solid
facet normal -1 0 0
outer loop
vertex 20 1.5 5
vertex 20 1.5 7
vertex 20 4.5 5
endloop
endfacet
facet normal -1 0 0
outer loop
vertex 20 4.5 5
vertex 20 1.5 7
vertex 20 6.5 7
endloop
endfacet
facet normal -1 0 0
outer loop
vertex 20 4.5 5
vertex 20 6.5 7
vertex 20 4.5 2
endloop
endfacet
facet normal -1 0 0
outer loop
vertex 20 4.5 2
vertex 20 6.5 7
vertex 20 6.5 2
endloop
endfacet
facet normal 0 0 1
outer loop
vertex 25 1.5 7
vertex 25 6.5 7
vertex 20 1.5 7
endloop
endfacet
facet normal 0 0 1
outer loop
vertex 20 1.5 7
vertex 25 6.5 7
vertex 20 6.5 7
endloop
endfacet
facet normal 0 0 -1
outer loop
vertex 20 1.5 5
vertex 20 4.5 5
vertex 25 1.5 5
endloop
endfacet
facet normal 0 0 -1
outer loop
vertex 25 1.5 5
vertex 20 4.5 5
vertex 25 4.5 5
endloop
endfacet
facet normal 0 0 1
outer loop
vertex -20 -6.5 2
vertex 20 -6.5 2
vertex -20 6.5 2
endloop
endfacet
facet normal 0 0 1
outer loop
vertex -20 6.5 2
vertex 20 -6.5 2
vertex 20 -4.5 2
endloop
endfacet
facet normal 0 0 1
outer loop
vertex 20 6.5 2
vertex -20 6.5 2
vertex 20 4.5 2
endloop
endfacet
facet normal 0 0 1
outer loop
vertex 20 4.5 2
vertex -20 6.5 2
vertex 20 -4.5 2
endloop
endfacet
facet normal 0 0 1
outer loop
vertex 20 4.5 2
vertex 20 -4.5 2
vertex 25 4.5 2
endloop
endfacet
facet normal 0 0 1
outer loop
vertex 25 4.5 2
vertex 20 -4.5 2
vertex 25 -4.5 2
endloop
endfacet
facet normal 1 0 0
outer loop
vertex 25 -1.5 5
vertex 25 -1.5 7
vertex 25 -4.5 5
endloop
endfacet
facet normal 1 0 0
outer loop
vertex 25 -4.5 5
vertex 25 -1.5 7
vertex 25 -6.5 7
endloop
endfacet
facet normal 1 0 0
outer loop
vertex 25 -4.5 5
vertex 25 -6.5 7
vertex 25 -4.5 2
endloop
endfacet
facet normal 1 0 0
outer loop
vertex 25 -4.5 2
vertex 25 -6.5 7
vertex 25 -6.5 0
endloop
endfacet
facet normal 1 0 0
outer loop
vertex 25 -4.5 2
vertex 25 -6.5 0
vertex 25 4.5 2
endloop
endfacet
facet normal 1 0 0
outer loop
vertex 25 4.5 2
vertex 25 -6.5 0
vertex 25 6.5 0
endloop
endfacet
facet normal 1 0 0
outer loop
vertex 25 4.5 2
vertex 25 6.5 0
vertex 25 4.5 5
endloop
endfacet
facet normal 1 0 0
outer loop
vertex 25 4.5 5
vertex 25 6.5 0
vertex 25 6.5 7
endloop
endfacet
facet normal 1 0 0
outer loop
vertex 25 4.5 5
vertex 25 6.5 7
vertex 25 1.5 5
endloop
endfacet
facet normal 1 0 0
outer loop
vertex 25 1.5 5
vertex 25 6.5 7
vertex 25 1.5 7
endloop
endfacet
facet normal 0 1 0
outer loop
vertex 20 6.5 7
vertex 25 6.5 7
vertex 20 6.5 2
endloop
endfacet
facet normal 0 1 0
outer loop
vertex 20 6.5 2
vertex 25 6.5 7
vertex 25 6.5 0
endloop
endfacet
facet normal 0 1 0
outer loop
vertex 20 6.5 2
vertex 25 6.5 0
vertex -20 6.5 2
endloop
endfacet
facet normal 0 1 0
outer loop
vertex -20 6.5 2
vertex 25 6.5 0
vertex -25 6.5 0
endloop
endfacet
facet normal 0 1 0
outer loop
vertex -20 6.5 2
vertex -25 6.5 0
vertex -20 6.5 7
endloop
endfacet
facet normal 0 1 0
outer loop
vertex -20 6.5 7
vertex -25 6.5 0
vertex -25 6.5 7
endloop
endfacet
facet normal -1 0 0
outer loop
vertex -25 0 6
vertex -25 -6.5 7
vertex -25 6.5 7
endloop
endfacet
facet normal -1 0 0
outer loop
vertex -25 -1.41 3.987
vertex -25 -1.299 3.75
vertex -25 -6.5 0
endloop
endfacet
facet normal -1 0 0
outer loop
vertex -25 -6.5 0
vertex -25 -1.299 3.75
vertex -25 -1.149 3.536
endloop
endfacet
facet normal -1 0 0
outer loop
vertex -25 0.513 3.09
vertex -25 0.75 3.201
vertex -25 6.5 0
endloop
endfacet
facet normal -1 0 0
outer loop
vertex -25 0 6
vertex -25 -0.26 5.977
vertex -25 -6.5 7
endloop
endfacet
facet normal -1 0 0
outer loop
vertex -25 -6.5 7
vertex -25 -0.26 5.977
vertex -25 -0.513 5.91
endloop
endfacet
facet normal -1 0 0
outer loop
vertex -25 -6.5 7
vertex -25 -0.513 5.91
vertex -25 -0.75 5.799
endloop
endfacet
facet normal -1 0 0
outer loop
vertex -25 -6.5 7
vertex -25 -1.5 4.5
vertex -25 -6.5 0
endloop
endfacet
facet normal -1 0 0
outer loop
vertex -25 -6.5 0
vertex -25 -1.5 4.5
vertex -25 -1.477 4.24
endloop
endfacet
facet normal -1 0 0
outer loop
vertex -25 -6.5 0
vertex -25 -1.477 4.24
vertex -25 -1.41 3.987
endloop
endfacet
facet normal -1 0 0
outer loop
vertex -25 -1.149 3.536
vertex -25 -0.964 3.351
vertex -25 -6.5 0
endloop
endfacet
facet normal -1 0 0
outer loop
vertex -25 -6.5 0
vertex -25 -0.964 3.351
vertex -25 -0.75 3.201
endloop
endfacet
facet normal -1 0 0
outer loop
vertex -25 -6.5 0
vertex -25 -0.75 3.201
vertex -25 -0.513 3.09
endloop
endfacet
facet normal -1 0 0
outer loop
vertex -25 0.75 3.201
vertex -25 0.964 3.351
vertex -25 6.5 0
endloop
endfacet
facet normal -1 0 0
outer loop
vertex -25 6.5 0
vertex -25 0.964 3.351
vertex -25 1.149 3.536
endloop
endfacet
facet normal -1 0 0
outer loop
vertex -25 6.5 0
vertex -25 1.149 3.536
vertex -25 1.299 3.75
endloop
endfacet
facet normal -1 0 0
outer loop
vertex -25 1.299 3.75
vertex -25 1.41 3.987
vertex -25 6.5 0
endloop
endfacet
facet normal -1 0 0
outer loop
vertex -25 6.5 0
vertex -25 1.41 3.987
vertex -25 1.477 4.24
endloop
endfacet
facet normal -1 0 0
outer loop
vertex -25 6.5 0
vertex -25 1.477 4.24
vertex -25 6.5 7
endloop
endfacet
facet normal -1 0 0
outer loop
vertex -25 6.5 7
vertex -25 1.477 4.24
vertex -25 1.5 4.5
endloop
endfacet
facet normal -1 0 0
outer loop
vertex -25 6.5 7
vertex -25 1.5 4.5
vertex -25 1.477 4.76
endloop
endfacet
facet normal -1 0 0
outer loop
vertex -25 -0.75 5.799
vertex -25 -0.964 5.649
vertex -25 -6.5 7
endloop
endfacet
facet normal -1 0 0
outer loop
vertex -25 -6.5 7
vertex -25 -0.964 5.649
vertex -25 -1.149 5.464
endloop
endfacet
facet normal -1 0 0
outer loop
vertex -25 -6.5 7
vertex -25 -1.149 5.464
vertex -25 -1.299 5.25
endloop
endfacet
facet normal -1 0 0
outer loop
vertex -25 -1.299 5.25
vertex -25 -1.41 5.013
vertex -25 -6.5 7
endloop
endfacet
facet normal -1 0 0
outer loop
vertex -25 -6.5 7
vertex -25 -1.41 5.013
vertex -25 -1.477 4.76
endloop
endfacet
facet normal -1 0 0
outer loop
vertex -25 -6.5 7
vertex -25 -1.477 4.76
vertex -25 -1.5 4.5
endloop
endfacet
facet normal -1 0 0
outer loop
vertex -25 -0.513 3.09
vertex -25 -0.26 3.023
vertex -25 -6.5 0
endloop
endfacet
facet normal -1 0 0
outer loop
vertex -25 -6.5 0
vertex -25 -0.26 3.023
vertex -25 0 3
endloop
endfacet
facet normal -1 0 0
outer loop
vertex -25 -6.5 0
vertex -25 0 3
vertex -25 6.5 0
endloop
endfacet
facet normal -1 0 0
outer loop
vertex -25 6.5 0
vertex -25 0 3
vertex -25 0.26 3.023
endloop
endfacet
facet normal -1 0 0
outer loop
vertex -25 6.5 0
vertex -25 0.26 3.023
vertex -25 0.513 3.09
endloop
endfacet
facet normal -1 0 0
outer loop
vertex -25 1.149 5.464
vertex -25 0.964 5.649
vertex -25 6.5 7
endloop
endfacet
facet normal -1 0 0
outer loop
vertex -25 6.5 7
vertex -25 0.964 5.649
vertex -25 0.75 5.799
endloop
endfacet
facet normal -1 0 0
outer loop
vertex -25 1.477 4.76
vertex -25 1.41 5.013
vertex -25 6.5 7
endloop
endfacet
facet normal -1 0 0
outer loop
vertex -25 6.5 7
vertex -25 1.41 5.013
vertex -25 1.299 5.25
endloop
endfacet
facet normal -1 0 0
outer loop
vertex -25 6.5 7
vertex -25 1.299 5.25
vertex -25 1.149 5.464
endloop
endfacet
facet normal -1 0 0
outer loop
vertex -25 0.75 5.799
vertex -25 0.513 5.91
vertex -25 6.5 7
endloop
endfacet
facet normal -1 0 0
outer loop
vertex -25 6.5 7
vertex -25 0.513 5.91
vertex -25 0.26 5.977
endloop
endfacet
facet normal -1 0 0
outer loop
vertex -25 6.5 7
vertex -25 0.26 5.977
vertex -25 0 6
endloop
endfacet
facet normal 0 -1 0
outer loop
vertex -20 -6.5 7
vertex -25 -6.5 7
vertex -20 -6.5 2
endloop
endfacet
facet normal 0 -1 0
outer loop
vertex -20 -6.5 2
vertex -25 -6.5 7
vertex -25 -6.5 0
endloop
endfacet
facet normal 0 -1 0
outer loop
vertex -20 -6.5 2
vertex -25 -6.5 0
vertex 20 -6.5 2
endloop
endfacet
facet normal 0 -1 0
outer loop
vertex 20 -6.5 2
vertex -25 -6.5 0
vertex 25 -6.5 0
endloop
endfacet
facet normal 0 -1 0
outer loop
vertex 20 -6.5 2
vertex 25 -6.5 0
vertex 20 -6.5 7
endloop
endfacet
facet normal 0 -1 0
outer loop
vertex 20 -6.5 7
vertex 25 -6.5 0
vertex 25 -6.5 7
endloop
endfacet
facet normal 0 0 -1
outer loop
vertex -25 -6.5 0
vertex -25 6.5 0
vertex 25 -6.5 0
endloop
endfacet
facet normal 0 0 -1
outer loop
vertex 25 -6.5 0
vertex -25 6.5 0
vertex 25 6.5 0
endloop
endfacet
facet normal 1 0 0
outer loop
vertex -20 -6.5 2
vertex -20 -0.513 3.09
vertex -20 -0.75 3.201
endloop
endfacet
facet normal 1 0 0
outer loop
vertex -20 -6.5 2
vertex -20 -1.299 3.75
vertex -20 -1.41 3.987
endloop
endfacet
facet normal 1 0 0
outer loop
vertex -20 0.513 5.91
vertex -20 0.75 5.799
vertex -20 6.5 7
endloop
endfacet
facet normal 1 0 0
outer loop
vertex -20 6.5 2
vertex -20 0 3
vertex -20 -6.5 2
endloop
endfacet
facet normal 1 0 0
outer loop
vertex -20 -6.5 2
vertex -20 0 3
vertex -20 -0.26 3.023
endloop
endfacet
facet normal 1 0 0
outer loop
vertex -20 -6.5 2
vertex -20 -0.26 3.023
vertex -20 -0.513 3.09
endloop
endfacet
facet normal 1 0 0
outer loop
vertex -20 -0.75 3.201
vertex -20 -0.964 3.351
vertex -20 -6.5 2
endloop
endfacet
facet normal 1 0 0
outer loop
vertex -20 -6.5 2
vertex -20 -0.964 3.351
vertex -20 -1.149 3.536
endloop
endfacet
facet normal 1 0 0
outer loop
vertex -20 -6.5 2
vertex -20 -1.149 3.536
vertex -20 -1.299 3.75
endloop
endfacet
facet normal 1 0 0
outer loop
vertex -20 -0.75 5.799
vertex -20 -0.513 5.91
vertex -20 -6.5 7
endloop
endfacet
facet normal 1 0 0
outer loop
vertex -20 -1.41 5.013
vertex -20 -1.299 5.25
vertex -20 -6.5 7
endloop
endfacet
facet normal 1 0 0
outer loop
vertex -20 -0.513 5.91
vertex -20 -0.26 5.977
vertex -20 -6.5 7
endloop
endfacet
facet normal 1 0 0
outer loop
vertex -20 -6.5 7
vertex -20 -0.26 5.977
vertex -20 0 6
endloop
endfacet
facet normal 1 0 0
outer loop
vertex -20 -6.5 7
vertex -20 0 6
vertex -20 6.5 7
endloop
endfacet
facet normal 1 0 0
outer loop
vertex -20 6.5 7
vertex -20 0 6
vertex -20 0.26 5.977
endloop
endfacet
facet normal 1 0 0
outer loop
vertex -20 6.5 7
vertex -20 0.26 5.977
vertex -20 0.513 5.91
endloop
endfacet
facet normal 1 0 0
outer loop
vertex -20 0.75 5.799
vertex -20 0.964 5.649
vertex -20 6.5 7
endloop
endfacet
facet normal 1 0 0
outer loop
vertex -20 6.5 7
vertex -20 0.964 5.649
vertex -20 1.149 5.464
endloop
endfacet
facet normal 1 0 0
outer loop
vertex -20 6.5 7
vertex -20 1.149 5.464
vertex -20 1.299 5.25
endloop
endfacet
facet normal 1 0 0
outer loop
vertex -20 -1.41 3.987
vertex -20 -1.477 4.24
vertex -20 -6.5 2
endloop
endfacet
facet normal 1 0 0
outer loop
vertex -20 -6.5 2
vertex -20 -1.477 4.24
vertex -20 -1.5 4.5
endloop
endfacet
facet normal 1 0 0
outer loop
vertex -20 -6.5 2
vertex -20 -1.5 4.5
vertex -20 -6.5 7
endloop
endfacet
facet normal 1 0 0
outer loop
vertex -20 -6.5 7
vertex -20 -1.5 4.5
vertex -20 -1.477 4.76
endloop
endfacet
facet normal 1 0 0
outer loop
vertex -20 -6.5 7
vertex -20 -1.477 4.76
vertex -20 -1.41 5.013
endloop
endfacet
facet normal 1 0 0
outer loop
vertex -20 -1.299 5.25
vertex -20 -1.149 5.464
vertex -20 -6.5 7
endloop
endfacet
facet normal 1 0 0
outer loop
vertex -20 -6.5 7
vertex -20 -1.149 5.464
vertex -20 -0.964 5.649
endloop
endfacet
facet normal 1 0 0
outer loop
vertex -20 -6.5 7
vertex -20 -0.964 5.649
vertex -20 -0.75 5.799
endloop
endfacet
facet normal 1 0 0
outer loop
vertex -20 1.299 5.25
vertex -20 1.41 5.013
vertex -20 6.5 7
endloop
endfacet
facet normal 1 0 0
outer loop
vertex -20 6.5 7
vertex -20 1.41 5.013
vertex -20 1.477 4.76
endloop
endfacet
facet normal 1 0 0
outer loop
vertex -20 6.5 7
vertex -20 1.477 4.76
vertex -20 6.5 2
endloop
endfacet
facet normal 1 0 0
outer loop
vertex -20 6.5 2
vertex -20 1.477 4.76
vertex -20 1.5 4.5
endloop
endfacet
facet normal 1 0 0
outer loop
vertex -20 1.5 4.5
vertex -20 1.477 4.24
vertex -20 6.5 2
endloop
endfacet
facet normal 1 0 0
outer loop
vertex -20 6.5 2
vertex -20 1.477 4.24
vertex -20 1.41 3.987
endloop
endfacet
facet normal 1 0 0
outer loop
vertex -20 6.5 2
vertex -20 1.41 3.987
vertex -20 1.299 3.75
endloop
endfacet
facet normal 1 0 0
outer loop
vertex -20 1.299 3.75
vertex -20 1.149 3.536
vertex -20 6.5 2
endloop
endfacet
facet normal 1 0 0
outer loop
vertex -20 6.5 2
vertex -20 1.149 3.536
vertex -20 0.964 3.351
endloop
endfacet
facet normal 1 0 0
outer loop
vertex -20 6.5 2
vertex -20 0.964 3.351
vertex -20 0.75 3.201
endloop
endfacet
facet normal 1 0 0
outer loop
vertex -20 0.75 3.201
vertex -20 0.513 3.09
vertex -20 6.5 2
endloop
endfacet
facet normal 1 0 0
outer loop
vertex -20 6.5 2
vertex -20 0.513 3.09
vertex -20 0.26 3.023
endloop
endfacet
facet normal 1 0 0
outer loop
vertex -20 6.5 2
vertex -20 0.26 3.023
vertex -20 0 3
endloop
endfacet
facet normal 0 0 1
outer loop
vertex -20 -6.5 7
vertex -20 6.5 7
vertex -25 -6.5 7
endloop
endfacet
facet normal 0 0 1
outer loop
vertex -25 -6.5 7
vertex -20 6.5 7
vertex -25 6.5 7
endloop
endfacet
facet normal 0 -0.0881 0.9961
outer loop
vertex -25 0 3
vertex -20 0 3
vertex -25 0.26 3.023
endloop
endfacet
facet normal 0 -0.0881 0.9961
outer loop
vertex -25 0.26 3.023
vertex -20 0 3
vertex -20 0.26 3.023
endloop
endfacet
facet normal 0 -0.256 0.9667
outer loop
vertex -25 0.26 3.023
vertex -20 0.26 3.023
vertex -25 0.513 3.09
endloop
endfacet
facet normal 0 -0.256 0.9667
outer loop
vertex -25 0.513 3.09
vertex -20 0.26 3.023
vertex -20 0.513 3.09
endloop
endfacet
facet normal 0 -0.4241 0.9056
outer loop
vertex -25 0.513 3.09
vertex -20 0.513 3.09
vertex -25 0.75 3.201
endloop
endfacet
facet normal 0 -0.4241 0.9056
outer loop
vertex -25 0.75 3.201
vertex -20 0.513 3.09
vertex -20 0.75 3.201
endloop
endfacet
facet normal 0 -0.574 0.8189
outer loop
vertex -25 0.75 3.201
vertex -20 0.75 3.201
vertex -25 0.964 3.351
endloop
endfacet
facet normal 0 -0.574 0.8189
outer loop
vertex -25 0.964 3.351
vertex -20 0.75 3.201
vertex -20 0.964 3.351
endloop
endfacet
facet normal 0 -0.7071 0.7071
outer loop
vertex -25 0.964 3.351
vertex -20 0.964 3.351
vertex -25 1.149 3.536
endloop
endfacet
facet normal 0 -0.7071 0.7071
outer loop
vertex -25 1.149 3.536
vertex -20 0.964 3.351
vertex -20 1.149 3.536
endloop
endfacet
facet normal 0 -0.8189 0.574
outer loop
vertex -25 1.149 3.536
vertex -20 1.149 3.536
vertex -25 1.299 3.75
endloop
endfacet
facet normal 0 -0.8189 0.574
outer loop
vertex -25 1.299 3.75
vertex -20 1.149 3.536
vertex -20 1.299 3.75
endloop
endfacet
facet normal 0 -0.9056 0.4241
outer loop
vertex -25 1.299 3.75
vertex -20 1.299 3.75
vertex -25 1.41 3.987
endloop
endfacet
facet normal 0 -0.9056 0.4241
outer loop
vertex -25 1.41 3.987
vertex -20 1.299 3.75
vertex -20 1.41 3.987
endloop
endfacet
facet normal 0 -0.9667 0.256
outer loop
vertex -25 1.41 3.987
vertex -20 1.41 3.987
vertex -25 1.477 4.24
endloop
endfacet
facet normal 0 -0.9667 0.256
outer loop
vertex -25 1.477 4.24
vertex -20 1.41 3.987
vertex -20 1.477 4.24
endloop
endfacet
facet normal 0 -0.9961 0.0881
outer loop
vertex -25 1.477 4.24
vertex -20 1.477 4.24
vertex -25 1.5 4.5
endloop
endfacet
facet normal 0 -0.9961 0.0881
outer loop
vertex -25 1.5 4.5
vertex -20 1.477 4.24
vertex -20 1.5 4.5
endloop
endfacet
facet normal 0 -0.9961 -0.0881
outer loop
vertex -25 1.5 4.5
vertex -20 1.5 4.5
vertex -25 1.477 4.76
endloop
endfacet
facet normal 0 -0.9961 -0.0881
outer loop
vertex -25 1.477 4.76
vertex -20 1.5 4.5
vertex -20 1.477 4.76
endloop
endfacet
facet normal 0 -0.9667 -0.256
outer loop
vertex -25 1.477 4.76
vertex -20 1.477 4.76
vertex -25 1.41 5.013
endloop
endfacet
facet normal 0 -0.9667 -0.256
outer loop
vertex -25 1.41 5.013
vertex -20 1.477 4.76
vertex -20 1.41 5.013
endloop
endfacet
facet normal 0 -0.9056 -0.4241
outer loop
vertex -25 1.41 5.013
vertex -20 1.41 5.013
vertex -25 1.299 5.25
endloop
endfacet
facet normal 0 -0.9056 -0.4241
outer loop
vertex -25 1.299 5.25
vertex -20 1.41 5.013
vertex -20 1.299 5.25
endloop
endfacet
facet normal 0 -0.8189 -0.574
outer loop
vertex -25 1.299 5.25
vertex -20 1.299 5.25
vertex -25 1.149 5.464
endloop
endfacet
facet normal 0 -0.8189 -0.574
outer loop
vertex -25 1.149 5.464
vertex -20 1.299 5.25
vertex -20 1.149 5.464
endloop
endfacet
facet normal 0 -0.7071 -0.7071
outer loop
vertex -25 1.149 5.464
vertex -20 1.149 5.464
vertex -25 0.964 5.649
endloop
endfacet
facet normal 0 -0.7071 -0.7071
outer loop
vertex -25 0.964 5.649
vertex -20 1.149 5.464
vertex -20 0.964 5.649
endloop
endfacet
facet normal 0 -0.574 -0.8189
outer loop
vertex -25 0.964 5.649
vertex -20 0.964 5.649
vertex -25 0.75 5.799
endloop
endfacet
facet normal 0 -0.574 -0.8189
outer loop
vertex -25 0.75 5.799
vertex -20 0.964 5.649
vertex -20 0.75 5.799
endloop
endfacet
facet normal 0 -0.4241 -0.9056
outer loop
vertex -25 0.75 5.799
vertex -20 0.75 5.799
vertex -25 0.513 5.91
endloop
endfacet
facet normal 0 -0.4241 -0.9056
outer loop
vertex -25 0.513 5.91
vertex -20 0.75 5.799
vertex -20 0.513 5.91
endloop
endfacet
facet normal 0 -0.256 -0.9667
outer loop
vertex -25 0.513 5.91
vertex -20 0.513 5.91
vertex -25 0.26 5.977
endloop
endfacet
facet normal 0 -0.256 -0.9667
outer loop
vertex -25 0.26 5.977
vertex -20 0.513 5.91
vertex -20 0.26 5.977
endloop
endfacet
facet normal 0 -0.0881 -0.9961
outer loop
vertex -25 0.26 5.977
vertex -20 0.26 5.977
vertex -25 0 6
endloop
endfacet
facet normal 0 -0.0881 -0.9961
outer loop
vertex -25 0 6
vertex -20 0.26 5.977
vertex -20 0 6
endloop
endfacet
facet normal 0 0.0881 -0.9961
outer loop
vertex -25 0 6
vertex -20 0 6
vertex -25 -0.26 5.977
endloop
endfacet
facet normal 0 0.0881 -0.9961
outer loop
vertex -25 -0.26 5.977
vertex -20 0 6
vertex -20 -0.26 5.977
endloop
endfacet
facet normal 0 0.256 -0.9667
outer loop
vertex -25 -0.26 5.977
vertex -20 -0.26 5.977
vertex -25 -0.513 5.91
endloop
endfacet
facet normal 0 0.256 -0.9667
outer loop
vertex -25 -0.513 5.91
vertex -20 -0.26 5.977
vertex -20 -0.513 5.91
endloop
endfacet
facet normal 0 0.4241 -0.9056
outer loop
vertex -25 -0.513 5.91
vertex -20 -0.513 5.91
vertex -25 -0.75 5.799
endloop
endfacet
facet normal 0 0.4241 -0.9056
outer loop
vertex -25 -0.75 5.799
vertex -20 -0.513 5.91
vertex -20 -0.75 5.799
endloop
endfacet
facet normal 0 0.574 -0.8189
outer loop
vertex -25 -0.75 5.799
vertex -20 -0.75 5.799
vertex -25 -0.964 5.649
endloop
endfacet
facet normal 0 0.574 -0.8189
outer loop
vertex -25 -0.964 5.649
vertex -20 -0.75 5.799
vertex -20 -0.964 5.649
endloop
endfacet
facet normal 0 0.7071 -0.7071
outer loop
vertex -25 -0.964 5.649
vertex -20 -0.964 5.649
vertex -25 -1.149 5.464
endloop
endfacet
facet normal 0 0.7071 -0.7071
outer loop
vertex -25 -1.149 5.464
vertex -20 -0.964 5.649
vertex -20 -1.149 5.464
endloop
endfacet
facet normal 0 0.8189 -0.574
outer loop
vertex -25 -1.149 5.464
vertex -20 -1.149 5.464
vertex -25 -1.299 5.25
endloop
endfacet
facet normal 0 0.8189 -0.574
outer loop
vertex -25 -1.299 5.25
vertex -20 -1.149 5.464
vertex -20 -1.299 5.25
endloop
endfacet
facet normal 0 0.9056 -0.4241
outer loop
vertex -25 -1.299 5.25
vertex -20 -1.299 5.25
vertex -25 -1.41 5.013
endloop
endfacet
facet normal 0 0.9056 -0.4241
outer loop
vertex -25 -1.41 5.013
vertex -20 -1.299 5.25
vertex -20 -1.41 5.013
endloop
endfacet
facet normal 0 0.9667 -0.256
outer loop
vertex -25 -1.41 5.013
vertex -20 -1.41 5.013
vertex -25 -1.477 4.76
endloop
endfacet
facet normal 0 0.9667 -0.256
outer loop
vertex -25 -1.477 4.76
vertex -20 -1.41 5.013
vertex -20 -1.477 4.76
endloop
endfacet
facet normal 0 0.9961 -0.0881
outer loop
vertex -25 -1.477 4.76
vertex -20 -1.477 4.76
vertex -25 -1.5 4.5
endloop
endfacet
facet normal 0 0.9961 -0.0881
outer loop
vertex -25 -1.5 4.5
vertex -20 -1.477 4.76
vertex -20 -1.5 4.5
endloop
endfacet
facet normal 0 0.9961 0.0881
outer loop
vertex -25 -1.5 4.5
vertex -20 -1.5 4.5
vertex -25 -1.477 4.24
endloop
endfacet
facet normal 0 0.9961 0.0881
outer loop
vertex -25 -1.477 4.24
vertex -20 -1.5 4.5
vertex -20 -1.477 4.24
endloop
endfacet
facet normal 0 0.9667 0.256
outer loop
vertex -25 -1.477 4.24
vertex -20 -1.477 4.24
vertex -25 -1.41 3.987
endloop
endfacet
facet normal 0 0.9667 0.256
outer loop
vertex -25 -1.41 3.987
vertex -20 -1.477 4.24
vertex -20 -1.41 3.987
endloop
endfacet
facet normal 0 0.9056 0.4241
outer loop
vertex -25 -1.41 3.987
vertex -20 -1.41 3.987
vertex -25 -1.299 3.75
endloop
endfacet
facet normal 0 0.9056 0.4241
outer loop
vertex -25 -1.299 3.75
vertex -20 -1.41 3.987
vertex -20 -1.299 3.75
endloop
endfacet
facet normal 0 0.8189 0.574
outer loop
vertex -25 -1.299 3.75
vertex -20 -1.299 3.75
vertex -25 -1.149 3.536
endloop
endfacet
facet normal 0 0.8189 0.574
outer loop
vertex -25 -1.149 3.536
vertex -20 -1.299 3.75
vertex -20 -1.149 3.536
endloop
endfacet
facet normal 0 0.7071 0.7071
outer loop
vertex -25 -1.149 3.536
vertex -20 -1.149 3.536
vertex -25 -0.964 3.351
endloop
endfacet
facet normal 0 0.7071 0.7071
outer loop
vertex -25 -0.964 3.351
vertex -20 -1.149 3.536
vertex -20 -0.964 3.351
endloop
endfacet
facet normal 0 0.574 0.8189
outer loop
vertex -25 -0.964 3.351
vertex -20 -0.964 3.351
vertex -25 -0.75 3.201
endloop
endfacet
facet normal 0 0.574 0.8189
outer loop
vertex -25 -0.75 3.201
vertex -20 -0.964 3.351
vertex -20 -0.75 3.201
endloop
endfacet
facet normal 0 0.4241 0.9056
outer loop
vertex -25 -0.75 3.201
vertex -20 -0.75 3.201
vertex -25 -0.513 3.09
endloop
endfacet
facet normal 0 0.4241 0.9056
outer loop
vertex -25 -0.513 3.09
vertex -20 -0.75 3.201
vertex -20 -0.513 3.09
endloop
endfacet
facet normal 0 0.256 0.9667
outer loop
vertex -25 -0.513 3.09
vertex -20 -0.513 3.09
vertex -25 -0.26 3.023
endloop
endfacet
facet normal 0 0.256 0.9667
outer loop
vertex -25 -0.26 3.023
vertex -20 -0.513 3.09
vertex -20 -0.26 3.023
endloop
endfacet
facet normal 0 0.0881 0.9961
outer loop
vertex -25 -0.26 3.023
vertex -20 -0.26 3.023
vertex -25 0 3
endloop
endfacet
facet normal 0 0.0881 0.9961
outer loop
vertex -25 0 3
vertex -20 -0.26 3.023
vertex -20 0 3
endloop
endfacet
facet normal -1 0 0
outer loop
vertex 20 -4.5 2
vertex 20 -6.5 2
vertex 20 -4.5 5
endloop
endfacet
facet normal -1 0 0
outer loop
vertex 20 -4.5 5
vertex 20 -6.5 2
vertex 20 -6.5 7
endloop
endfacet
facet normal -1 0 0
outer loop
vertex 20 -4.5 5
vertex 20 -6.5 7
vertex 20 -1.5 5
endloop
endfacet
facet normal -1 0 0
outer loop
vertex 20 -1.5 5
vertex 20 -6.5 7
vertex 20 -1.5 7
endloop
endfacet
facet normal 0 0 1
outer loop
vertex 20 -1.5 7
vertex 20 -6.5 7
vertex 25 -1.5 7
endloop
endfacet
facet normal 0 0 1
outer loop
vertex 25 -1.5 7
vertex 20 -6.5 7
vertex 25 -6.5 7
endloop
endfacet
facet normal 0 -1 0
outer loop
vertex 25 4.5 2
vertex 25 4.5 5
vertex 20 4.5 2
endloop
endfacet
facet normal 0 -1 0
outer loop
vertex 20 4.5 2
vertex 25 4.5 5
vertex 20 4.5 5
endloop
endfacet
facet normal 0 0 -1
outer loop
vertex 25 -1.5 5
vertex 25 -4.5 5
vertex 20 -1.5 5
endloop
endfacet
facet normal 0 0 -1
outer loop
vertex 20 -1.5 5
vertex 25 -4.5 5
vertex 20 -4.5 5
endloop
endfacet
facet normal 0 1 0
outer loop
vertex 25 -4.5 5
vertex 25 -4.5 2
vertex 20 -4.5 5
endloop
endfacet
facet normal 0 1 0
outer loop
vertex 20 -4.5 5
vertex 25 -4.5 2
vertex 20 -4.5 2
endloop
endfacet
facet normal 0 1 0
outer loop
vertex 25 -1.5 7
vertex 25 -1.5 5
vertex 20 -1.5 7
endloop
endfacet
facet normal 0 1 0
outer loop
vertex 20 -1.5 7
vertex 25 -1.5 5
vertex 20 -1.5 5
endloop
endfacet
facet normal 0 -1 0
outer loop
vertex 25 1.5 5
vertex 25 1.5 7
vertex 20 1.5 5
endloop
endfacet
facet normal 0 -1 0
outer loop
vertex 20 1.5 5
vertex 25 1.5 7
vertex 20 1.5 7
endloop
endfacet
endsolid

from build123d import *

# Parameters (mm, degrees)
SKETCH_1_W          = 50
SKETCH_1_H          = 13
EXTRUDE_4_DEPTH     = 2
SKETCH_6_W          = 5
SKETCH_6_H          = 13
EXTRUDE_5_DEPTH     = 5
SKETCH_7_R          = 1.5
CUT_EXTRUDE_2_DEPTH = 5
SKETCH_8_W          = 5
SKETCH_8_H          = 13
EXTRUDE_6_DEPTH     = 5
SKETCH_9_W          = 3
SKETCH_9_H          = 9
CUT_EXTRUDE_3_DEPTH = 5
SKETCH_10_W         = 2
SKETCH_10_H         = 3
CUT_EXTRUDE_4_DEPTH = 5


with BuildPart() as part:
    # Эскиз1 → Бобышка-Вытянуть4 (new body)
    with BuildSketch(Plane.XY):
        Rectangle(SKETCH_1_W, SKETCH_1_H)
    extrude(amount=EXTRUDE_4_DEPTH)

    # Эскиз6 → Бобышка-Вытянуть5 (add)
    with BuildSketch(Plane.XY.offset(2)):
        with Locations((-22.5, 0)):
            Rectangle(SKETCH_6_W, SKETCH_6_H)
    extrude(amount=EXTRUDE_5_DEPTH)

    # Эскиз7 → Вырез-Вытянуть2 (cut)
    with BuildSketch(Plane(origin=(-20, 0, 0), x_dir=(0, 0, -1), z_dir=(1, 0, 0))):
        with Locations((-4.5, 0)):
            Circle(SKETCH_7_R)
    extrude(amount=-CUT_EXTRUDE_2_DEPTH, mode=Mode.SUBTRACT)

    # Эскиз8 → Бобышка-Вытянуть6 (add)
    with BuildSketch(Plane.XY.offset(2)):
        with Locations((22.5, 0)):
            Rectangle(SKETCH_8_W, SKETCH_8_H)
    extrude(amount=EXTRUDE_6_DEPTH)

    # Эскиз9 → Вырез-Вытянуть3 (cut)
    with BuildSketch(Plane.ZY.offset(-20)):
        with Locations((3.5, 0)):
            Rectangle(SKETCH_9_W, SKETCH_9_H)
    extrude(amount=-CUT_EXTRUDE_3_DEPTH, mode=Mode.SUBTRACT)

    # Эскиз10 → Вырез-Вытянуть4 (cut)
    with BuildSketch(Plane.ZY.offset(-20)):
        with Locations((6, 0)):
            Rectangle(SKETCH_10_W, SKETCH_10_H)
    extrude(amount=-CUT_EXTRUDE_4_DEPTH, mode=Mode.SUBTRACT)


solid = part.part
